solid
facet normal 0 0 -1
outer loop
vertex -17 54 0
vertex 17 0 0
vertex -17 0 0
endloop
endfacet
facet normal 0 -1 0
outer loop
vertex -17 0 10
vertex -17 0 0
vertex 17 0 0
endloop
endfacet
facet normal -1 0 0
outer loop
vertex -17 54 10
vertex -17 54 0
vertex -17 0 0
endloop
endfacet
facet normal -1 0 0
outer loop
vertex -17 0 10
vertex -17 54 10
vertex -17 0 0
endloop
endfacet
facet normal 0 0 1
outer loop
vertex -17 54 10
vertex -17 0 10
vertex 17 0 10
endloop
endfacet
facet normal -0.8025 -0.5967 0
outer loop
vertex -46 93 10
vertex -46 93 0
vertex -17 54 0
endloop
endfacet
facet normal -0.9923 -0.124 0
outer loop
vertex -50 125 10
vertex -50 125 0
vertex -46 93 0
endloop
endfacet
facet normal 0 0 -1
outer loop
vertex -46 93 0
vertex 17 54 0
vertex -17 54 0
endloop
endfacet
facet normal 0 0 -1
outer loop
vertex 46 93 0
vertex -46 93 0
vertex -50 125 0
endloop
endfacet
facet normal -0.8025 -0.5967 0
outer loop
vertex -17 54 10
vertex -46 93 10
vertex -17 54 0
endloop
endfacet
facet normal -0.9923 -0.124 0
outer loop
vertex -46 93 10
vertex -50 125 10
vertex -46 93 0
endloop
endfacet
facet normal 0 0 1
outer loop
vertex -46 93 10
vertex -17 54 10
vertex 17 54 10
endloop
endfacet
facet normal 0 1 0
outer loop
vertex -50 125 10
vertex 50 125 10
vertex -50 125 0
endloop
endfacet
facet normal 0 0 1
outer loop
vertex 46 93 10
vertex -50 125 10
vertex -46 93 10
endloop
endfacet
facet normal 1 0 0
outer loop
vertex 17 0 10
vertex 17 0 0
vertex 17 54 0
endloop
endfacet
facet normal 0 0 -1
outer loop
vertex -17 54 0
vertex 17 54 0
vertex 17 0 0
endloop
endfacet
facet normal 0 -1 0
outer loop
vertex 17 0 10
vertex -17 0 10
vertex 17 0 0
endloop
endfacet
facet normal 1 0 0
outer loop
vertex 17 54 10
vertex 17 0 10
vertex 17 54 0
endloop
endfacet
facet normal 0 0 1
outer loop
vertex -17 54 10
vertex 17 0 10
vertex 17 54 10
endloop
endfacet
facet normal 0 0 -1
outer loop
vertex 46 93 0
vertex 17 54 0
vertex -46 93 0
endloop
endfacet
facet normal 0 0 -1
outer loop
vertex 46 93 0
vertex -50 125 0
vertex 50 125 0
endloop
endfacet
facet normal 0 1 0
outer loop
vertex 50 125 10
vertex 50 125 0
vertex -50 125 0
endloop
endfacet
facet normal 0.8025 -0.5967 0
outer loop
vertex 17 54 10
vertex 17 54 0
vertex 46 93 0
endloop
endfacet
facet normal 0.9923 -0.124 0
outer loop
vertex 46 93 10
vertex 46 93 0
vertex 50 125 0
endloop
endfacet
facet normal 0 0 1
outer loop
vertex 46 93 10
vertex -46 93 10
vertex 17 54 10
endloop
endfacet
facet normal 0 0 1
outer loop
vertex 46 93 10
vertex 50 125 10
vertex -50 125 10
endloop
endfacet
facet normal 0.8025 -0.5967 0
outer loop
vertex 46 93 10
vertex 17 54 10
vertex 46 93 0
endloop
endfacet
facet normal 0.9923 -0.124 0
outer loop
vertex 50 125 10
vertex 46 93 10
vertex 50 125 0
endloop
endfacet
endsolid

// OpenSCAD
// Blue needle-nose pliers, 130 mm
// Geometry follows the holder clearance profile. Its dimensions describe the pocket used in the source design. Physical tool dimensions and fit have yet to be measured.
// Units: mm
$fn = 64;
union() {
    translate([0, 0, 0]) rotate([0, 0, 0])
        linear_extrude(height=10) polygon(points=[[-17, 0], [-17, 54], [-46, 93], [-50, 125], [50, 125], [46, 93], [17, 54], [17, 0]]);
}
